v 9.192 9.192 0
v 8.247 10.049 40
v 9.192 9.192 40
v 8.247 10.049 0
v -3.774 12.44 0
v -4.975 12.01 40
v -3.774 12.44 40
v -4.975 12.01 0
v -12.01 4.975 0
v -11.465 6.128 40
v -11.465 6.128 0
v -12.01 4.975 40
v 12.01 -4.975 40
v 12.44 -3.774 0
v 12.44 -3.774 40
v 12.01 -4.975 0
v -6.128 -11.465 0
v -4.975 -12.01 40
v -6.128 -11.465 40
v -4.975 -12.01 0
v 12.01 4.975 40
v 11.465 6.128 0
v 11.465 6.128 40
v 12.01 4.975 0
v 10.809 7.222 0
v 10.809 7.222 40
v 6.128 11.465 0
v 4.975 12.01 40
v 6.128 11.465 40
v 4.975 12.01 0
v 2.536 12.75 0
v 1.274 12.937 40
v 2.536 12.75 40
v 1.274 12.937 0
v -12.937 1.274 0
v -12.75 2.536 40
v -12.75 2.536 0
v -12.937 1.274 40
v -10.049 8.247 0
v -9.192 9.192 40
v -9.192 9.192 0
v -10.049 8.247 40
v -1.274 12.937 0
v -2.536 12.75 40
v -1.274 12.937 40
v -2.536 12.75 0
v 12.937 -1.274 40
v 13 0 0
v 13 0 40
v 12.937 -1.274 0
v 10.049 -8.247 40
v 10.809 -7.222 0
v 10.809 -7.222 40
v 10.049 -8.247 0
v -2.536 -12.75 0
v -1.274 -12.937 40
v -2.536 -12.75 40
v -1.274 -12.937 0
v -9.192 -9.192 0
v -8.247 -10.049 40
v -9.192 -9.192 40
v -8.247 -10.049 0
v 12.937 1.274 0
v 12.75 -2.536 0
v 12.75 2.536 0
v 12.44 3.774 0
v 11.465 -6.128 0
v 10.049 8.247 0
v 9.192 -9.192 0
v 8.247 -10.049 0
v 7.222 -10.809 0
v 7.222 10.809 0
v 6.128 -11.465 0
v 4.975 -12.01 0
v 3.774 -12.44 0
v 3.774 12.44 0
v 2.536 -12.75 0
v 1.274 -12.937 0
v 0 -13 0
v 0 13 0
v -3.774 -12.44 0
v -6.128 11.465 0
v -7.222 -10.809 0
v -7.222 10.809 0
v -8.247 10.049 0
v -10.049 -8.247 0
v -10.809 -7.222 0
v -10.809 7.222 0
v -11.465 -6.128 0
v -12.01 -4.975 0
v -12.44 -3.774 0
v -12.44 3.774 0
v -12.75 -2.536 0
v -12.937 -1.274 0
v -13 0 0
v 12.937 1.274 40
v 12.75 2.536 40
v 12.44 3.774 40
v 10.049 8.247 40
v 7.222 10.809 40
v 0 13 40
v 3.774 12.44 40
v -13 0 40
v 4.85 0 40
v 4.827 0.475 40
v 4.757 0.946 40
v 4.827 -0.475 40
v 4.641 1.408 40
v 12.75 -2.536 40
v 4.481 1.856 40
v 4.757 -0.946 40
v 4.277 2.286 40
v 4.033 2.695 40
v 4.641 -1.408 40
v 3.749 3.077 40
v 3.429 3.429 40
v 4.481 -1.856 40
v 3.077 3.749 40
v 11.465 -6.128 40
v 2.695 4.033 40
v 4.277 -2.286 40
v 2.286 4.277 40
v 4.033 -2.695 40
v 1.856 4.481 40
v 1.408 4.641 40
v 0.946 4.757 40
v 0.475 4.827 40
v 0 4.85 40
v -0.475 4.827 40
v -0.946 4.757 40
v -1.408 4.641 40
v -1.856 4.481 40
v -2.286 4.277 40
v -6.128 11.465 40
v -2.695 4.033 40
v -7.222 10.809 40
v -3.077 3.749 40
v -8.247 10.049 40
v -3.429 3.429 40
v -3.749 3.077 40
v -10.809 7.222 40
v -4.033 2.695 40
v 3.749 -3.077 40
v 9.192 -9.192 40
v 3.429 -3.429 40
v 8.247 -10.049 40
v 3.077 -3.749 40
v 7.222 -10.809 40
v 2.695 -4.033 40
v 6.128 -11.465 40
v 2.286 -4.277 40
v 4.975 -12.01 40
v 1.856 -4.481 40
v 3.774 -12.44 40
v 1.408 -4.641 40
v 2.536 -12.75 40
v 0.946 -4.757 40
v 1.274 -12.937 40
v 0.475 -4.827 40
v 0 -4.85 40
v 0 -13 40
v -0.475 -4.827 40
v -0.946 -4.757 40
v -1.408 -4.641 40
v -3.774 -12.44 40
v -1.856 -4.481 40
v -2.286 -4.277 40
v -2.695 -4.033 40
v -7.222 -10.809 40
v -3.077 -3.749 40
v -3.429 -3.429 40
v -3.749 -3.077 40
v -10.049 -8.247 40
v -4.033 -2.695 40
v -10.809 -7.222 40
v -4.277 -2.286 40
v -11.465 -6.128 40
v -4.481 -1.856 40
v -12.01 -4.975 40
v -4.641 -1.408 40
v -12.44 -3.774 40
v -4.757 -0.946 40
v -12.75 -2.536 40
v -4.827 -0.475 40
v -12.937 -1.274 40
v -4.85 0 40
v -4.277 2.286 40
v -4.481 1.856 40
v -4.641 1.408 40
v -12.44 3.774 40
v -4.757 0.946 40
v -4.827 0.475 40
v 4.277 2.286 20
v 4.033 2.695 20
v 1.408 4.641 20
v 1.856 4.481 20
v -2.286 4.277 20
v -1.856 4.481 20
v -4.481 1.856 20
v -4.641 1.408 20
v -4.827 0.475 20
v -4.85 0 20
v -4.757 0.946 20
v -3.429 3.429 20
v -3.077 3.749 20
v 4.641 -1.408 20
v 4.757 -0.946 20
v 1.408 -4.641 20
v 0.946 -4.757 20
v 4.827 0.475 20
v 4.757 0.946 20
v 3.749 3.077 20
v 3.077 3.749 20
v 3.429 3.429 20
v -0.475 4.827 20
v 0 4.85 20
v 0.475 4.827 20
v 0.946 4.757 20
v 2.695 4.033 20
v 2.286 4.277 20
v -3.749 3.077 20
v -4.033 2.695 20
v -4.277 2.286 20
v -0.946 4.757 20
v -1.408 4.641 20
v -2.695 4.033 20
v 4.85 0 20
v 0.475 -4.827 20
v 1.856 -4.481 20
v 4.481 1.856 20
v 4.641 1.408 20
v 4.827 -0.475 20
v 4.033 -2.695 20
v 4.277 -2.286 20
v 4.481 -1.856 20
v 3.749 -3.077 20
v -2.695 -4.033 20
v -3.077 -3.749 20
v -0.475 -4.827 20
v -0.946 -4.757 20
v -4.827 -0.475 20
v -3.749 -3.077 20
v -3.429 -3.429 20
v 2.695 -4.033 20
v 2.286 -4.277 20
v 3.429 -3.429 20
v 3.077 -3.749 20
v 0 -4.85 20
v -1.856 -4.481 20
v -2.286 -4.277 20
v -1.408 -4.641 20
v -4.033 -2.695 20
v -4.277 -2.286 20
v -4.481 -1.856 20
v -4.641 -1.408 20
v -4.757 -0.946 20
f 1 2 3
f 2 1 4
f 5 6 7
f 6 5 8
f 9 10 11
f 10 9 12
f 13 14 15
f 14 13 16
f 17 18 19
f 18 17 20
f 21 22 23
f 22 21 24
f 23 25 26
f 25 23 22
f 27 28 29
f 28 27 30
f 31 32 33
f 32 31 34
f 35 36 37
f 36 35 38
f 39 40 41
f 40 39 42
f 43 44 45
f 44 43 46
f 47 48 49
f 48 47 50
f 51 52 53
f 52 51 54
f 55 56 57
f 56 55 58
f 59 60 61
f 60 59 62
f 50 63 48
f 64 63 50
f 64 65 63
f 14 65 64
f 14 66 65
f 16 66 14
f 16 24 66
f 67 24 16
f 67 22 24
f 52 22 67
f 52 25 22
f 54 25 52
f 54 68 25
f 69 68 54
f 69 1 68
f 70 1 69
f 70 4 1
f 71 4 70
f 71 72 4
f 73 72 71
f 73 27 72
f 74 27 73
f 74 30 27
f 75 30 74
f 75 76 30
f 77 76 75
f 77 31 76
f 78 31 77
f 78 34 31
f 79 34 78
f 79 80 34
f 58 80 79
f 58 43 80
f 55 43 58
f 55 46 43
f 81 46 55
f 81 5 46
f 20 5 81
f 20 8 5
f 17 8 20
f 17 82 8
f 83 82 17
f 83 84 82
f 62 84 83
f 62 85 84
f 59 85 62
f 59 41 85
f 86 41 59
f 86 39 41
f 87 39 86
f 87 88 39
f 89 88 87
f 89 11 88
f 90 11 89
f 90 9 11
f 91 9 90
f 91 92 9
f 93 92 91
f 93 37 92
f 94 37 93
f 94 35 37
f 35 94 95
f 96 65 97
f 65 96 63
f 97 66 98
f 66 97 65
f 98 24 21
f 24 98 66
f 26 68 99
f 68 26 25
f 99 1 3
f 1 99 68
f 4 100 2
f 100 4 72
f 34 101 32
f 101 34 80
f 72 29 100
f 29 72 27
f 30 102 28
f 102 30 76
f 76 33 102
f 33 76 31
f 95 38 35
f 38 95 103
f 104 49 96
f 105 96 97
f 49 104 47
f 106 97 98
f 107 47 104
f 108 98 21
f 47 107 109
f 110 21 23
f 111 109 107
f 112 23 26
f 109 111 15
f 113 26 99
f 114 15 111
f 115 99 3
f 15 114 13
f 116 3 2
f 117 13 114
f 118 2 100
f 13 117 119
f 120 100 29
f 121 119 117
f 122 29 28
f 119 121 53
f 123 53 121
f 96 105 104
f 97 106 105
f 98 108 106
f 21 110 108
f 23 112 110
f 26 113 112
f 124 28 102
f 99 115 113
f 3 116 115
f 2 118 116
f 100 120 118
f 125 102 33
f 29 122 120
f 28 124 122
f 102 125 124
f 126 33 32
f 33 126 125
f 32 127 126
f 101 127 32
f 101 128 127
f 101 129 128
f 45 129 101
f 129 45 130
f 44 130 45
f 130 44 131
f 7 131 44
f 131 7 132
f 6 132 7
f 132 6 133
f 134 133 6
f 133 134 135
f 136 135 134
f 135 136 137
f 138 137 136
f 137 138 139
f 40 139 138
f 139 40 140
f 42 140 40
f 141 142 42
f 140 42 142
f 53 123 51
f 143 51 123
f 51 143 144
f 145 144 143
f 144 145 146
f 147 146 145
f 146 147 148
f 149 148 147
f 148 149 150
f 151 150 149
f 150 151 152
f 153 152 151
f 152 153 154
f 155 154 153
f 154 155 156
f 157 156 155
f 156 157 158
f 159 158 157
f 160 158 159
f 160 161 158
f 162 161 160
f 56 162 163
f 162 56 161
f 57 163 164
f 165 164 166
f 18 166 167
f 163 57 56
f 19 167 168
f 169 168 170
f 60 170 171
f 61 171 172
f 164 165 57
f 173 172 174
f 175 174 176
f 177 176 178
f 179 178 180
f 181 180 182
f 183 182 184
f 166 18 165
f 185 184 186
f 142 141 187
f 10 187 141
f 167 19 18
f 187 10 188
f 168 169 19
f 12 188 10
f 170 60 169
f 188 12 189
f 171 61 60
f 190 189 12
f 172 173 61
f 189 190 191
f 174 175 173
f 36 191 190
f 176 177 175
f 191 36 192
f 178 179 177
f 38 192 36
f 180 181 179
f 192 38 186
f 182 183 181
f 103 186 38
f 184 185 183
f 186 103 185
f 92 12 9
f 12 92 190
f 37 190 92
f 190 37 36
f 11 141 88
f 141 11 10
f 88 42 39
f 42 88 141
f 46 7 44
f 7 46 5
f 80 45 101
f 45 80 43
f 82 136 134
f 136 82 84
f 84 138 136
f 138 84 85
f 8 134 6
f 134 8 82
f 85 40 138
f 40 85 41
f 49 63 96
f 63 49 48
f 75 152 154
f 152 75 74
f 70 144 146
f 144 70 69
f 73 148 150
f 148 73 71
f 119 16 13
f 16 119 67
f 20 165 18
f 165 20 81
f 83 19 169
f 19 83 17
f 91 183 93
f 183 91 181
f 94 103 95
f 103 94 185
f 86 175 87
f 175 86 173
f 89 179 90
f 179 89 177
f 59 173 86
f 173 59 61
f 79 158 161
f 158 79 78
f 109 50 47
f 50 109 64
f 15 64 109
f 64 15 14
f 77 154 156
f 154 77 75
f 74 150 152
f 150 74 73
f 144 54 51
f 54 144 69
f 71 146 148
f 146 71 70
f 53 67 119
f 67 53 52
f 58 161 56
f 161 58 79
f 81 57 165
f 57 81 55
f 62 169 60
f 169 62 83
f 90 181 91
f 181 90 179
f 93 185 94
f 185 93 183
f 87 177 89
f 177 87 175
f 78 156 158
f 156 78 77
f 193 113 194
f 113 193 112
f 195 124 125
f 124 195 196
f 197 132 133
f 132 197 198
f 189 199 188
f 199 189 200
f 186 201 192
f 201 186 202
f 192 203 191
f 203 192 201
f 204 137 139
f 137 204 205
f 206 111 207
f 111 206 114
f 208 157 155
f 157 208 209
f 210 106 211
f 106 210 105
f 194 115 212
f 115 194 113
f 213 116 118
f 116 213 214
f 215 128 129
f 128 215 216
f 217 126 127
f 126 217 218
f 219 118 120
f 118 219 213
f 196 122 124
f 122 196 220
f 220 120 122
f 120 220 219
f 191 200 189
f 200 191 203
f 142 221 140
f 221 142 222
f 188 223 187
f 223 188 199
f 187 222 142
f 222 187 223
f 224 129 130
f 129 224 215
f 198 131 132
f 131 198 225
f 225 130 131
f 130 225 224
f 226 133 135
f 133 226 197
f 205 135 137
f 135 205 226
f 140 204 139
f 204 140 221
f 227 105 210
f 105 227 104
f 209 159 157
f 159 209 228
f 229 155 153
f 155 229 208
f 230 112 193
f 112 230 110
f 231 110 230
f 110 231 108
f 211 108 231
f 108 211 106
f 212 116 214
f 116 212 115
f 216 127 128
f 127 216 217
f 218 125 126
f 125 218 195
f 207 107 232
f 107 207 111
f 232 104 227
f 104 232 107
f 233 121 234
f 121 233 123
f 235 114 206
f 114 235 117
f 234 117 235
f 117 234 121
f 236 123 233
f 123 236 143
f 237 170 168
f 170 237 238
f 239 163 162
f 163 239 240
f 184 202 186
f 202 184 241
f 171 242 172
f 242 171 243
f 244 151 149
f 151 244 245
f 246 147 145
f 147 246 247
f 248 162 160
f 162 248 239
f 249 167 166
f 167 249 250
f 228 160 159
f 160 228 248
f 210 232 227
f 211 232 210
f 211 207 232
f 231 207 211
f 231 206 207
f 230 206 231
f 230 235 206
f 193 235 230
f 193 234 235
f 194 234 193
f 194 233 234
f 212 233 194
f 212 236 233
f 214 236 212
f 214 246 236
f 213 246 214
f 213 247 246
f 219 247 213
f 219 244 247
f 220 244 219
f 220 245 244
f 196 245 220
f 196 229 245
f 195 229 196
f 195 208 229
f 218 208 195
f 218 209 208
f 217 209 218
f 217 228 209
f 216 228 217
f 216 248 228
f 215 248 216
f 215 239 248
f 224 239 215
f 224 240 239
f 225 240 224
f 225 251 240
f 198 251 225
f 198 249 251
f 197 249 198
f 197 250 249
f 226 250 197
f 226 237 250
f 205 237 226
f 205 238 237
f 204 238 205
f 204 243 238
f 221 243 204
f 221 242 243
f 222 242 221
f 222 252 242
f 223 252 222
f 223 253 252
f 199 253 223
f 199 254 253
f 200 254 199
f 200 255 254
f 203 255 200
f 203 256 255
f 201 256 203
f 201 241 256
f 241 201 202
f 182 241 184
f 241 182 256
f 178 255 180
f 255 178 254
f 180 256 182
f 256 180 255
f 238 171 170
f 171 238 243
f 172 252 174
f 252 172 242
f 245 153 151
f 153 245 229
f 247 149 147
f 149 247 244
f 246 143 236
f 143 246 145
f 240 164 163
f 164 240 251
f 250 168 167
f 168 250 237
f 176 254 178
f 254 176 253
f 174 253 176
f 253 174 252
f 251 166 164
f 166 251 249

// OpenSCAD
difference() {
	cylinder($fn = 64, h = 40, r = 13);
	translate(v = [0, 0, 20]) {
		cylinder($fn = 64, h = 20, r = 4.8500000000);
	}
}
/***********************************************
******      SolidPython code:      *************
************************************************
 

from solid import *
from solid.utils import *

foot_rad = 13
foot_height = 40
hole_rad = 9.7 / 2.0
hole_depth = 20

foot = cylinder(r=foot_rad, h=foot_height, segments=64)

hole = up(foot_height - hole_depth)(
    cylinder(r=hole_rad, h=hole_depth, segments=64)
)
final = foot - hole

scad_render_to_file(final, __file__.replace('.py', '.scad'))
 
 
***********************************************/
                            
